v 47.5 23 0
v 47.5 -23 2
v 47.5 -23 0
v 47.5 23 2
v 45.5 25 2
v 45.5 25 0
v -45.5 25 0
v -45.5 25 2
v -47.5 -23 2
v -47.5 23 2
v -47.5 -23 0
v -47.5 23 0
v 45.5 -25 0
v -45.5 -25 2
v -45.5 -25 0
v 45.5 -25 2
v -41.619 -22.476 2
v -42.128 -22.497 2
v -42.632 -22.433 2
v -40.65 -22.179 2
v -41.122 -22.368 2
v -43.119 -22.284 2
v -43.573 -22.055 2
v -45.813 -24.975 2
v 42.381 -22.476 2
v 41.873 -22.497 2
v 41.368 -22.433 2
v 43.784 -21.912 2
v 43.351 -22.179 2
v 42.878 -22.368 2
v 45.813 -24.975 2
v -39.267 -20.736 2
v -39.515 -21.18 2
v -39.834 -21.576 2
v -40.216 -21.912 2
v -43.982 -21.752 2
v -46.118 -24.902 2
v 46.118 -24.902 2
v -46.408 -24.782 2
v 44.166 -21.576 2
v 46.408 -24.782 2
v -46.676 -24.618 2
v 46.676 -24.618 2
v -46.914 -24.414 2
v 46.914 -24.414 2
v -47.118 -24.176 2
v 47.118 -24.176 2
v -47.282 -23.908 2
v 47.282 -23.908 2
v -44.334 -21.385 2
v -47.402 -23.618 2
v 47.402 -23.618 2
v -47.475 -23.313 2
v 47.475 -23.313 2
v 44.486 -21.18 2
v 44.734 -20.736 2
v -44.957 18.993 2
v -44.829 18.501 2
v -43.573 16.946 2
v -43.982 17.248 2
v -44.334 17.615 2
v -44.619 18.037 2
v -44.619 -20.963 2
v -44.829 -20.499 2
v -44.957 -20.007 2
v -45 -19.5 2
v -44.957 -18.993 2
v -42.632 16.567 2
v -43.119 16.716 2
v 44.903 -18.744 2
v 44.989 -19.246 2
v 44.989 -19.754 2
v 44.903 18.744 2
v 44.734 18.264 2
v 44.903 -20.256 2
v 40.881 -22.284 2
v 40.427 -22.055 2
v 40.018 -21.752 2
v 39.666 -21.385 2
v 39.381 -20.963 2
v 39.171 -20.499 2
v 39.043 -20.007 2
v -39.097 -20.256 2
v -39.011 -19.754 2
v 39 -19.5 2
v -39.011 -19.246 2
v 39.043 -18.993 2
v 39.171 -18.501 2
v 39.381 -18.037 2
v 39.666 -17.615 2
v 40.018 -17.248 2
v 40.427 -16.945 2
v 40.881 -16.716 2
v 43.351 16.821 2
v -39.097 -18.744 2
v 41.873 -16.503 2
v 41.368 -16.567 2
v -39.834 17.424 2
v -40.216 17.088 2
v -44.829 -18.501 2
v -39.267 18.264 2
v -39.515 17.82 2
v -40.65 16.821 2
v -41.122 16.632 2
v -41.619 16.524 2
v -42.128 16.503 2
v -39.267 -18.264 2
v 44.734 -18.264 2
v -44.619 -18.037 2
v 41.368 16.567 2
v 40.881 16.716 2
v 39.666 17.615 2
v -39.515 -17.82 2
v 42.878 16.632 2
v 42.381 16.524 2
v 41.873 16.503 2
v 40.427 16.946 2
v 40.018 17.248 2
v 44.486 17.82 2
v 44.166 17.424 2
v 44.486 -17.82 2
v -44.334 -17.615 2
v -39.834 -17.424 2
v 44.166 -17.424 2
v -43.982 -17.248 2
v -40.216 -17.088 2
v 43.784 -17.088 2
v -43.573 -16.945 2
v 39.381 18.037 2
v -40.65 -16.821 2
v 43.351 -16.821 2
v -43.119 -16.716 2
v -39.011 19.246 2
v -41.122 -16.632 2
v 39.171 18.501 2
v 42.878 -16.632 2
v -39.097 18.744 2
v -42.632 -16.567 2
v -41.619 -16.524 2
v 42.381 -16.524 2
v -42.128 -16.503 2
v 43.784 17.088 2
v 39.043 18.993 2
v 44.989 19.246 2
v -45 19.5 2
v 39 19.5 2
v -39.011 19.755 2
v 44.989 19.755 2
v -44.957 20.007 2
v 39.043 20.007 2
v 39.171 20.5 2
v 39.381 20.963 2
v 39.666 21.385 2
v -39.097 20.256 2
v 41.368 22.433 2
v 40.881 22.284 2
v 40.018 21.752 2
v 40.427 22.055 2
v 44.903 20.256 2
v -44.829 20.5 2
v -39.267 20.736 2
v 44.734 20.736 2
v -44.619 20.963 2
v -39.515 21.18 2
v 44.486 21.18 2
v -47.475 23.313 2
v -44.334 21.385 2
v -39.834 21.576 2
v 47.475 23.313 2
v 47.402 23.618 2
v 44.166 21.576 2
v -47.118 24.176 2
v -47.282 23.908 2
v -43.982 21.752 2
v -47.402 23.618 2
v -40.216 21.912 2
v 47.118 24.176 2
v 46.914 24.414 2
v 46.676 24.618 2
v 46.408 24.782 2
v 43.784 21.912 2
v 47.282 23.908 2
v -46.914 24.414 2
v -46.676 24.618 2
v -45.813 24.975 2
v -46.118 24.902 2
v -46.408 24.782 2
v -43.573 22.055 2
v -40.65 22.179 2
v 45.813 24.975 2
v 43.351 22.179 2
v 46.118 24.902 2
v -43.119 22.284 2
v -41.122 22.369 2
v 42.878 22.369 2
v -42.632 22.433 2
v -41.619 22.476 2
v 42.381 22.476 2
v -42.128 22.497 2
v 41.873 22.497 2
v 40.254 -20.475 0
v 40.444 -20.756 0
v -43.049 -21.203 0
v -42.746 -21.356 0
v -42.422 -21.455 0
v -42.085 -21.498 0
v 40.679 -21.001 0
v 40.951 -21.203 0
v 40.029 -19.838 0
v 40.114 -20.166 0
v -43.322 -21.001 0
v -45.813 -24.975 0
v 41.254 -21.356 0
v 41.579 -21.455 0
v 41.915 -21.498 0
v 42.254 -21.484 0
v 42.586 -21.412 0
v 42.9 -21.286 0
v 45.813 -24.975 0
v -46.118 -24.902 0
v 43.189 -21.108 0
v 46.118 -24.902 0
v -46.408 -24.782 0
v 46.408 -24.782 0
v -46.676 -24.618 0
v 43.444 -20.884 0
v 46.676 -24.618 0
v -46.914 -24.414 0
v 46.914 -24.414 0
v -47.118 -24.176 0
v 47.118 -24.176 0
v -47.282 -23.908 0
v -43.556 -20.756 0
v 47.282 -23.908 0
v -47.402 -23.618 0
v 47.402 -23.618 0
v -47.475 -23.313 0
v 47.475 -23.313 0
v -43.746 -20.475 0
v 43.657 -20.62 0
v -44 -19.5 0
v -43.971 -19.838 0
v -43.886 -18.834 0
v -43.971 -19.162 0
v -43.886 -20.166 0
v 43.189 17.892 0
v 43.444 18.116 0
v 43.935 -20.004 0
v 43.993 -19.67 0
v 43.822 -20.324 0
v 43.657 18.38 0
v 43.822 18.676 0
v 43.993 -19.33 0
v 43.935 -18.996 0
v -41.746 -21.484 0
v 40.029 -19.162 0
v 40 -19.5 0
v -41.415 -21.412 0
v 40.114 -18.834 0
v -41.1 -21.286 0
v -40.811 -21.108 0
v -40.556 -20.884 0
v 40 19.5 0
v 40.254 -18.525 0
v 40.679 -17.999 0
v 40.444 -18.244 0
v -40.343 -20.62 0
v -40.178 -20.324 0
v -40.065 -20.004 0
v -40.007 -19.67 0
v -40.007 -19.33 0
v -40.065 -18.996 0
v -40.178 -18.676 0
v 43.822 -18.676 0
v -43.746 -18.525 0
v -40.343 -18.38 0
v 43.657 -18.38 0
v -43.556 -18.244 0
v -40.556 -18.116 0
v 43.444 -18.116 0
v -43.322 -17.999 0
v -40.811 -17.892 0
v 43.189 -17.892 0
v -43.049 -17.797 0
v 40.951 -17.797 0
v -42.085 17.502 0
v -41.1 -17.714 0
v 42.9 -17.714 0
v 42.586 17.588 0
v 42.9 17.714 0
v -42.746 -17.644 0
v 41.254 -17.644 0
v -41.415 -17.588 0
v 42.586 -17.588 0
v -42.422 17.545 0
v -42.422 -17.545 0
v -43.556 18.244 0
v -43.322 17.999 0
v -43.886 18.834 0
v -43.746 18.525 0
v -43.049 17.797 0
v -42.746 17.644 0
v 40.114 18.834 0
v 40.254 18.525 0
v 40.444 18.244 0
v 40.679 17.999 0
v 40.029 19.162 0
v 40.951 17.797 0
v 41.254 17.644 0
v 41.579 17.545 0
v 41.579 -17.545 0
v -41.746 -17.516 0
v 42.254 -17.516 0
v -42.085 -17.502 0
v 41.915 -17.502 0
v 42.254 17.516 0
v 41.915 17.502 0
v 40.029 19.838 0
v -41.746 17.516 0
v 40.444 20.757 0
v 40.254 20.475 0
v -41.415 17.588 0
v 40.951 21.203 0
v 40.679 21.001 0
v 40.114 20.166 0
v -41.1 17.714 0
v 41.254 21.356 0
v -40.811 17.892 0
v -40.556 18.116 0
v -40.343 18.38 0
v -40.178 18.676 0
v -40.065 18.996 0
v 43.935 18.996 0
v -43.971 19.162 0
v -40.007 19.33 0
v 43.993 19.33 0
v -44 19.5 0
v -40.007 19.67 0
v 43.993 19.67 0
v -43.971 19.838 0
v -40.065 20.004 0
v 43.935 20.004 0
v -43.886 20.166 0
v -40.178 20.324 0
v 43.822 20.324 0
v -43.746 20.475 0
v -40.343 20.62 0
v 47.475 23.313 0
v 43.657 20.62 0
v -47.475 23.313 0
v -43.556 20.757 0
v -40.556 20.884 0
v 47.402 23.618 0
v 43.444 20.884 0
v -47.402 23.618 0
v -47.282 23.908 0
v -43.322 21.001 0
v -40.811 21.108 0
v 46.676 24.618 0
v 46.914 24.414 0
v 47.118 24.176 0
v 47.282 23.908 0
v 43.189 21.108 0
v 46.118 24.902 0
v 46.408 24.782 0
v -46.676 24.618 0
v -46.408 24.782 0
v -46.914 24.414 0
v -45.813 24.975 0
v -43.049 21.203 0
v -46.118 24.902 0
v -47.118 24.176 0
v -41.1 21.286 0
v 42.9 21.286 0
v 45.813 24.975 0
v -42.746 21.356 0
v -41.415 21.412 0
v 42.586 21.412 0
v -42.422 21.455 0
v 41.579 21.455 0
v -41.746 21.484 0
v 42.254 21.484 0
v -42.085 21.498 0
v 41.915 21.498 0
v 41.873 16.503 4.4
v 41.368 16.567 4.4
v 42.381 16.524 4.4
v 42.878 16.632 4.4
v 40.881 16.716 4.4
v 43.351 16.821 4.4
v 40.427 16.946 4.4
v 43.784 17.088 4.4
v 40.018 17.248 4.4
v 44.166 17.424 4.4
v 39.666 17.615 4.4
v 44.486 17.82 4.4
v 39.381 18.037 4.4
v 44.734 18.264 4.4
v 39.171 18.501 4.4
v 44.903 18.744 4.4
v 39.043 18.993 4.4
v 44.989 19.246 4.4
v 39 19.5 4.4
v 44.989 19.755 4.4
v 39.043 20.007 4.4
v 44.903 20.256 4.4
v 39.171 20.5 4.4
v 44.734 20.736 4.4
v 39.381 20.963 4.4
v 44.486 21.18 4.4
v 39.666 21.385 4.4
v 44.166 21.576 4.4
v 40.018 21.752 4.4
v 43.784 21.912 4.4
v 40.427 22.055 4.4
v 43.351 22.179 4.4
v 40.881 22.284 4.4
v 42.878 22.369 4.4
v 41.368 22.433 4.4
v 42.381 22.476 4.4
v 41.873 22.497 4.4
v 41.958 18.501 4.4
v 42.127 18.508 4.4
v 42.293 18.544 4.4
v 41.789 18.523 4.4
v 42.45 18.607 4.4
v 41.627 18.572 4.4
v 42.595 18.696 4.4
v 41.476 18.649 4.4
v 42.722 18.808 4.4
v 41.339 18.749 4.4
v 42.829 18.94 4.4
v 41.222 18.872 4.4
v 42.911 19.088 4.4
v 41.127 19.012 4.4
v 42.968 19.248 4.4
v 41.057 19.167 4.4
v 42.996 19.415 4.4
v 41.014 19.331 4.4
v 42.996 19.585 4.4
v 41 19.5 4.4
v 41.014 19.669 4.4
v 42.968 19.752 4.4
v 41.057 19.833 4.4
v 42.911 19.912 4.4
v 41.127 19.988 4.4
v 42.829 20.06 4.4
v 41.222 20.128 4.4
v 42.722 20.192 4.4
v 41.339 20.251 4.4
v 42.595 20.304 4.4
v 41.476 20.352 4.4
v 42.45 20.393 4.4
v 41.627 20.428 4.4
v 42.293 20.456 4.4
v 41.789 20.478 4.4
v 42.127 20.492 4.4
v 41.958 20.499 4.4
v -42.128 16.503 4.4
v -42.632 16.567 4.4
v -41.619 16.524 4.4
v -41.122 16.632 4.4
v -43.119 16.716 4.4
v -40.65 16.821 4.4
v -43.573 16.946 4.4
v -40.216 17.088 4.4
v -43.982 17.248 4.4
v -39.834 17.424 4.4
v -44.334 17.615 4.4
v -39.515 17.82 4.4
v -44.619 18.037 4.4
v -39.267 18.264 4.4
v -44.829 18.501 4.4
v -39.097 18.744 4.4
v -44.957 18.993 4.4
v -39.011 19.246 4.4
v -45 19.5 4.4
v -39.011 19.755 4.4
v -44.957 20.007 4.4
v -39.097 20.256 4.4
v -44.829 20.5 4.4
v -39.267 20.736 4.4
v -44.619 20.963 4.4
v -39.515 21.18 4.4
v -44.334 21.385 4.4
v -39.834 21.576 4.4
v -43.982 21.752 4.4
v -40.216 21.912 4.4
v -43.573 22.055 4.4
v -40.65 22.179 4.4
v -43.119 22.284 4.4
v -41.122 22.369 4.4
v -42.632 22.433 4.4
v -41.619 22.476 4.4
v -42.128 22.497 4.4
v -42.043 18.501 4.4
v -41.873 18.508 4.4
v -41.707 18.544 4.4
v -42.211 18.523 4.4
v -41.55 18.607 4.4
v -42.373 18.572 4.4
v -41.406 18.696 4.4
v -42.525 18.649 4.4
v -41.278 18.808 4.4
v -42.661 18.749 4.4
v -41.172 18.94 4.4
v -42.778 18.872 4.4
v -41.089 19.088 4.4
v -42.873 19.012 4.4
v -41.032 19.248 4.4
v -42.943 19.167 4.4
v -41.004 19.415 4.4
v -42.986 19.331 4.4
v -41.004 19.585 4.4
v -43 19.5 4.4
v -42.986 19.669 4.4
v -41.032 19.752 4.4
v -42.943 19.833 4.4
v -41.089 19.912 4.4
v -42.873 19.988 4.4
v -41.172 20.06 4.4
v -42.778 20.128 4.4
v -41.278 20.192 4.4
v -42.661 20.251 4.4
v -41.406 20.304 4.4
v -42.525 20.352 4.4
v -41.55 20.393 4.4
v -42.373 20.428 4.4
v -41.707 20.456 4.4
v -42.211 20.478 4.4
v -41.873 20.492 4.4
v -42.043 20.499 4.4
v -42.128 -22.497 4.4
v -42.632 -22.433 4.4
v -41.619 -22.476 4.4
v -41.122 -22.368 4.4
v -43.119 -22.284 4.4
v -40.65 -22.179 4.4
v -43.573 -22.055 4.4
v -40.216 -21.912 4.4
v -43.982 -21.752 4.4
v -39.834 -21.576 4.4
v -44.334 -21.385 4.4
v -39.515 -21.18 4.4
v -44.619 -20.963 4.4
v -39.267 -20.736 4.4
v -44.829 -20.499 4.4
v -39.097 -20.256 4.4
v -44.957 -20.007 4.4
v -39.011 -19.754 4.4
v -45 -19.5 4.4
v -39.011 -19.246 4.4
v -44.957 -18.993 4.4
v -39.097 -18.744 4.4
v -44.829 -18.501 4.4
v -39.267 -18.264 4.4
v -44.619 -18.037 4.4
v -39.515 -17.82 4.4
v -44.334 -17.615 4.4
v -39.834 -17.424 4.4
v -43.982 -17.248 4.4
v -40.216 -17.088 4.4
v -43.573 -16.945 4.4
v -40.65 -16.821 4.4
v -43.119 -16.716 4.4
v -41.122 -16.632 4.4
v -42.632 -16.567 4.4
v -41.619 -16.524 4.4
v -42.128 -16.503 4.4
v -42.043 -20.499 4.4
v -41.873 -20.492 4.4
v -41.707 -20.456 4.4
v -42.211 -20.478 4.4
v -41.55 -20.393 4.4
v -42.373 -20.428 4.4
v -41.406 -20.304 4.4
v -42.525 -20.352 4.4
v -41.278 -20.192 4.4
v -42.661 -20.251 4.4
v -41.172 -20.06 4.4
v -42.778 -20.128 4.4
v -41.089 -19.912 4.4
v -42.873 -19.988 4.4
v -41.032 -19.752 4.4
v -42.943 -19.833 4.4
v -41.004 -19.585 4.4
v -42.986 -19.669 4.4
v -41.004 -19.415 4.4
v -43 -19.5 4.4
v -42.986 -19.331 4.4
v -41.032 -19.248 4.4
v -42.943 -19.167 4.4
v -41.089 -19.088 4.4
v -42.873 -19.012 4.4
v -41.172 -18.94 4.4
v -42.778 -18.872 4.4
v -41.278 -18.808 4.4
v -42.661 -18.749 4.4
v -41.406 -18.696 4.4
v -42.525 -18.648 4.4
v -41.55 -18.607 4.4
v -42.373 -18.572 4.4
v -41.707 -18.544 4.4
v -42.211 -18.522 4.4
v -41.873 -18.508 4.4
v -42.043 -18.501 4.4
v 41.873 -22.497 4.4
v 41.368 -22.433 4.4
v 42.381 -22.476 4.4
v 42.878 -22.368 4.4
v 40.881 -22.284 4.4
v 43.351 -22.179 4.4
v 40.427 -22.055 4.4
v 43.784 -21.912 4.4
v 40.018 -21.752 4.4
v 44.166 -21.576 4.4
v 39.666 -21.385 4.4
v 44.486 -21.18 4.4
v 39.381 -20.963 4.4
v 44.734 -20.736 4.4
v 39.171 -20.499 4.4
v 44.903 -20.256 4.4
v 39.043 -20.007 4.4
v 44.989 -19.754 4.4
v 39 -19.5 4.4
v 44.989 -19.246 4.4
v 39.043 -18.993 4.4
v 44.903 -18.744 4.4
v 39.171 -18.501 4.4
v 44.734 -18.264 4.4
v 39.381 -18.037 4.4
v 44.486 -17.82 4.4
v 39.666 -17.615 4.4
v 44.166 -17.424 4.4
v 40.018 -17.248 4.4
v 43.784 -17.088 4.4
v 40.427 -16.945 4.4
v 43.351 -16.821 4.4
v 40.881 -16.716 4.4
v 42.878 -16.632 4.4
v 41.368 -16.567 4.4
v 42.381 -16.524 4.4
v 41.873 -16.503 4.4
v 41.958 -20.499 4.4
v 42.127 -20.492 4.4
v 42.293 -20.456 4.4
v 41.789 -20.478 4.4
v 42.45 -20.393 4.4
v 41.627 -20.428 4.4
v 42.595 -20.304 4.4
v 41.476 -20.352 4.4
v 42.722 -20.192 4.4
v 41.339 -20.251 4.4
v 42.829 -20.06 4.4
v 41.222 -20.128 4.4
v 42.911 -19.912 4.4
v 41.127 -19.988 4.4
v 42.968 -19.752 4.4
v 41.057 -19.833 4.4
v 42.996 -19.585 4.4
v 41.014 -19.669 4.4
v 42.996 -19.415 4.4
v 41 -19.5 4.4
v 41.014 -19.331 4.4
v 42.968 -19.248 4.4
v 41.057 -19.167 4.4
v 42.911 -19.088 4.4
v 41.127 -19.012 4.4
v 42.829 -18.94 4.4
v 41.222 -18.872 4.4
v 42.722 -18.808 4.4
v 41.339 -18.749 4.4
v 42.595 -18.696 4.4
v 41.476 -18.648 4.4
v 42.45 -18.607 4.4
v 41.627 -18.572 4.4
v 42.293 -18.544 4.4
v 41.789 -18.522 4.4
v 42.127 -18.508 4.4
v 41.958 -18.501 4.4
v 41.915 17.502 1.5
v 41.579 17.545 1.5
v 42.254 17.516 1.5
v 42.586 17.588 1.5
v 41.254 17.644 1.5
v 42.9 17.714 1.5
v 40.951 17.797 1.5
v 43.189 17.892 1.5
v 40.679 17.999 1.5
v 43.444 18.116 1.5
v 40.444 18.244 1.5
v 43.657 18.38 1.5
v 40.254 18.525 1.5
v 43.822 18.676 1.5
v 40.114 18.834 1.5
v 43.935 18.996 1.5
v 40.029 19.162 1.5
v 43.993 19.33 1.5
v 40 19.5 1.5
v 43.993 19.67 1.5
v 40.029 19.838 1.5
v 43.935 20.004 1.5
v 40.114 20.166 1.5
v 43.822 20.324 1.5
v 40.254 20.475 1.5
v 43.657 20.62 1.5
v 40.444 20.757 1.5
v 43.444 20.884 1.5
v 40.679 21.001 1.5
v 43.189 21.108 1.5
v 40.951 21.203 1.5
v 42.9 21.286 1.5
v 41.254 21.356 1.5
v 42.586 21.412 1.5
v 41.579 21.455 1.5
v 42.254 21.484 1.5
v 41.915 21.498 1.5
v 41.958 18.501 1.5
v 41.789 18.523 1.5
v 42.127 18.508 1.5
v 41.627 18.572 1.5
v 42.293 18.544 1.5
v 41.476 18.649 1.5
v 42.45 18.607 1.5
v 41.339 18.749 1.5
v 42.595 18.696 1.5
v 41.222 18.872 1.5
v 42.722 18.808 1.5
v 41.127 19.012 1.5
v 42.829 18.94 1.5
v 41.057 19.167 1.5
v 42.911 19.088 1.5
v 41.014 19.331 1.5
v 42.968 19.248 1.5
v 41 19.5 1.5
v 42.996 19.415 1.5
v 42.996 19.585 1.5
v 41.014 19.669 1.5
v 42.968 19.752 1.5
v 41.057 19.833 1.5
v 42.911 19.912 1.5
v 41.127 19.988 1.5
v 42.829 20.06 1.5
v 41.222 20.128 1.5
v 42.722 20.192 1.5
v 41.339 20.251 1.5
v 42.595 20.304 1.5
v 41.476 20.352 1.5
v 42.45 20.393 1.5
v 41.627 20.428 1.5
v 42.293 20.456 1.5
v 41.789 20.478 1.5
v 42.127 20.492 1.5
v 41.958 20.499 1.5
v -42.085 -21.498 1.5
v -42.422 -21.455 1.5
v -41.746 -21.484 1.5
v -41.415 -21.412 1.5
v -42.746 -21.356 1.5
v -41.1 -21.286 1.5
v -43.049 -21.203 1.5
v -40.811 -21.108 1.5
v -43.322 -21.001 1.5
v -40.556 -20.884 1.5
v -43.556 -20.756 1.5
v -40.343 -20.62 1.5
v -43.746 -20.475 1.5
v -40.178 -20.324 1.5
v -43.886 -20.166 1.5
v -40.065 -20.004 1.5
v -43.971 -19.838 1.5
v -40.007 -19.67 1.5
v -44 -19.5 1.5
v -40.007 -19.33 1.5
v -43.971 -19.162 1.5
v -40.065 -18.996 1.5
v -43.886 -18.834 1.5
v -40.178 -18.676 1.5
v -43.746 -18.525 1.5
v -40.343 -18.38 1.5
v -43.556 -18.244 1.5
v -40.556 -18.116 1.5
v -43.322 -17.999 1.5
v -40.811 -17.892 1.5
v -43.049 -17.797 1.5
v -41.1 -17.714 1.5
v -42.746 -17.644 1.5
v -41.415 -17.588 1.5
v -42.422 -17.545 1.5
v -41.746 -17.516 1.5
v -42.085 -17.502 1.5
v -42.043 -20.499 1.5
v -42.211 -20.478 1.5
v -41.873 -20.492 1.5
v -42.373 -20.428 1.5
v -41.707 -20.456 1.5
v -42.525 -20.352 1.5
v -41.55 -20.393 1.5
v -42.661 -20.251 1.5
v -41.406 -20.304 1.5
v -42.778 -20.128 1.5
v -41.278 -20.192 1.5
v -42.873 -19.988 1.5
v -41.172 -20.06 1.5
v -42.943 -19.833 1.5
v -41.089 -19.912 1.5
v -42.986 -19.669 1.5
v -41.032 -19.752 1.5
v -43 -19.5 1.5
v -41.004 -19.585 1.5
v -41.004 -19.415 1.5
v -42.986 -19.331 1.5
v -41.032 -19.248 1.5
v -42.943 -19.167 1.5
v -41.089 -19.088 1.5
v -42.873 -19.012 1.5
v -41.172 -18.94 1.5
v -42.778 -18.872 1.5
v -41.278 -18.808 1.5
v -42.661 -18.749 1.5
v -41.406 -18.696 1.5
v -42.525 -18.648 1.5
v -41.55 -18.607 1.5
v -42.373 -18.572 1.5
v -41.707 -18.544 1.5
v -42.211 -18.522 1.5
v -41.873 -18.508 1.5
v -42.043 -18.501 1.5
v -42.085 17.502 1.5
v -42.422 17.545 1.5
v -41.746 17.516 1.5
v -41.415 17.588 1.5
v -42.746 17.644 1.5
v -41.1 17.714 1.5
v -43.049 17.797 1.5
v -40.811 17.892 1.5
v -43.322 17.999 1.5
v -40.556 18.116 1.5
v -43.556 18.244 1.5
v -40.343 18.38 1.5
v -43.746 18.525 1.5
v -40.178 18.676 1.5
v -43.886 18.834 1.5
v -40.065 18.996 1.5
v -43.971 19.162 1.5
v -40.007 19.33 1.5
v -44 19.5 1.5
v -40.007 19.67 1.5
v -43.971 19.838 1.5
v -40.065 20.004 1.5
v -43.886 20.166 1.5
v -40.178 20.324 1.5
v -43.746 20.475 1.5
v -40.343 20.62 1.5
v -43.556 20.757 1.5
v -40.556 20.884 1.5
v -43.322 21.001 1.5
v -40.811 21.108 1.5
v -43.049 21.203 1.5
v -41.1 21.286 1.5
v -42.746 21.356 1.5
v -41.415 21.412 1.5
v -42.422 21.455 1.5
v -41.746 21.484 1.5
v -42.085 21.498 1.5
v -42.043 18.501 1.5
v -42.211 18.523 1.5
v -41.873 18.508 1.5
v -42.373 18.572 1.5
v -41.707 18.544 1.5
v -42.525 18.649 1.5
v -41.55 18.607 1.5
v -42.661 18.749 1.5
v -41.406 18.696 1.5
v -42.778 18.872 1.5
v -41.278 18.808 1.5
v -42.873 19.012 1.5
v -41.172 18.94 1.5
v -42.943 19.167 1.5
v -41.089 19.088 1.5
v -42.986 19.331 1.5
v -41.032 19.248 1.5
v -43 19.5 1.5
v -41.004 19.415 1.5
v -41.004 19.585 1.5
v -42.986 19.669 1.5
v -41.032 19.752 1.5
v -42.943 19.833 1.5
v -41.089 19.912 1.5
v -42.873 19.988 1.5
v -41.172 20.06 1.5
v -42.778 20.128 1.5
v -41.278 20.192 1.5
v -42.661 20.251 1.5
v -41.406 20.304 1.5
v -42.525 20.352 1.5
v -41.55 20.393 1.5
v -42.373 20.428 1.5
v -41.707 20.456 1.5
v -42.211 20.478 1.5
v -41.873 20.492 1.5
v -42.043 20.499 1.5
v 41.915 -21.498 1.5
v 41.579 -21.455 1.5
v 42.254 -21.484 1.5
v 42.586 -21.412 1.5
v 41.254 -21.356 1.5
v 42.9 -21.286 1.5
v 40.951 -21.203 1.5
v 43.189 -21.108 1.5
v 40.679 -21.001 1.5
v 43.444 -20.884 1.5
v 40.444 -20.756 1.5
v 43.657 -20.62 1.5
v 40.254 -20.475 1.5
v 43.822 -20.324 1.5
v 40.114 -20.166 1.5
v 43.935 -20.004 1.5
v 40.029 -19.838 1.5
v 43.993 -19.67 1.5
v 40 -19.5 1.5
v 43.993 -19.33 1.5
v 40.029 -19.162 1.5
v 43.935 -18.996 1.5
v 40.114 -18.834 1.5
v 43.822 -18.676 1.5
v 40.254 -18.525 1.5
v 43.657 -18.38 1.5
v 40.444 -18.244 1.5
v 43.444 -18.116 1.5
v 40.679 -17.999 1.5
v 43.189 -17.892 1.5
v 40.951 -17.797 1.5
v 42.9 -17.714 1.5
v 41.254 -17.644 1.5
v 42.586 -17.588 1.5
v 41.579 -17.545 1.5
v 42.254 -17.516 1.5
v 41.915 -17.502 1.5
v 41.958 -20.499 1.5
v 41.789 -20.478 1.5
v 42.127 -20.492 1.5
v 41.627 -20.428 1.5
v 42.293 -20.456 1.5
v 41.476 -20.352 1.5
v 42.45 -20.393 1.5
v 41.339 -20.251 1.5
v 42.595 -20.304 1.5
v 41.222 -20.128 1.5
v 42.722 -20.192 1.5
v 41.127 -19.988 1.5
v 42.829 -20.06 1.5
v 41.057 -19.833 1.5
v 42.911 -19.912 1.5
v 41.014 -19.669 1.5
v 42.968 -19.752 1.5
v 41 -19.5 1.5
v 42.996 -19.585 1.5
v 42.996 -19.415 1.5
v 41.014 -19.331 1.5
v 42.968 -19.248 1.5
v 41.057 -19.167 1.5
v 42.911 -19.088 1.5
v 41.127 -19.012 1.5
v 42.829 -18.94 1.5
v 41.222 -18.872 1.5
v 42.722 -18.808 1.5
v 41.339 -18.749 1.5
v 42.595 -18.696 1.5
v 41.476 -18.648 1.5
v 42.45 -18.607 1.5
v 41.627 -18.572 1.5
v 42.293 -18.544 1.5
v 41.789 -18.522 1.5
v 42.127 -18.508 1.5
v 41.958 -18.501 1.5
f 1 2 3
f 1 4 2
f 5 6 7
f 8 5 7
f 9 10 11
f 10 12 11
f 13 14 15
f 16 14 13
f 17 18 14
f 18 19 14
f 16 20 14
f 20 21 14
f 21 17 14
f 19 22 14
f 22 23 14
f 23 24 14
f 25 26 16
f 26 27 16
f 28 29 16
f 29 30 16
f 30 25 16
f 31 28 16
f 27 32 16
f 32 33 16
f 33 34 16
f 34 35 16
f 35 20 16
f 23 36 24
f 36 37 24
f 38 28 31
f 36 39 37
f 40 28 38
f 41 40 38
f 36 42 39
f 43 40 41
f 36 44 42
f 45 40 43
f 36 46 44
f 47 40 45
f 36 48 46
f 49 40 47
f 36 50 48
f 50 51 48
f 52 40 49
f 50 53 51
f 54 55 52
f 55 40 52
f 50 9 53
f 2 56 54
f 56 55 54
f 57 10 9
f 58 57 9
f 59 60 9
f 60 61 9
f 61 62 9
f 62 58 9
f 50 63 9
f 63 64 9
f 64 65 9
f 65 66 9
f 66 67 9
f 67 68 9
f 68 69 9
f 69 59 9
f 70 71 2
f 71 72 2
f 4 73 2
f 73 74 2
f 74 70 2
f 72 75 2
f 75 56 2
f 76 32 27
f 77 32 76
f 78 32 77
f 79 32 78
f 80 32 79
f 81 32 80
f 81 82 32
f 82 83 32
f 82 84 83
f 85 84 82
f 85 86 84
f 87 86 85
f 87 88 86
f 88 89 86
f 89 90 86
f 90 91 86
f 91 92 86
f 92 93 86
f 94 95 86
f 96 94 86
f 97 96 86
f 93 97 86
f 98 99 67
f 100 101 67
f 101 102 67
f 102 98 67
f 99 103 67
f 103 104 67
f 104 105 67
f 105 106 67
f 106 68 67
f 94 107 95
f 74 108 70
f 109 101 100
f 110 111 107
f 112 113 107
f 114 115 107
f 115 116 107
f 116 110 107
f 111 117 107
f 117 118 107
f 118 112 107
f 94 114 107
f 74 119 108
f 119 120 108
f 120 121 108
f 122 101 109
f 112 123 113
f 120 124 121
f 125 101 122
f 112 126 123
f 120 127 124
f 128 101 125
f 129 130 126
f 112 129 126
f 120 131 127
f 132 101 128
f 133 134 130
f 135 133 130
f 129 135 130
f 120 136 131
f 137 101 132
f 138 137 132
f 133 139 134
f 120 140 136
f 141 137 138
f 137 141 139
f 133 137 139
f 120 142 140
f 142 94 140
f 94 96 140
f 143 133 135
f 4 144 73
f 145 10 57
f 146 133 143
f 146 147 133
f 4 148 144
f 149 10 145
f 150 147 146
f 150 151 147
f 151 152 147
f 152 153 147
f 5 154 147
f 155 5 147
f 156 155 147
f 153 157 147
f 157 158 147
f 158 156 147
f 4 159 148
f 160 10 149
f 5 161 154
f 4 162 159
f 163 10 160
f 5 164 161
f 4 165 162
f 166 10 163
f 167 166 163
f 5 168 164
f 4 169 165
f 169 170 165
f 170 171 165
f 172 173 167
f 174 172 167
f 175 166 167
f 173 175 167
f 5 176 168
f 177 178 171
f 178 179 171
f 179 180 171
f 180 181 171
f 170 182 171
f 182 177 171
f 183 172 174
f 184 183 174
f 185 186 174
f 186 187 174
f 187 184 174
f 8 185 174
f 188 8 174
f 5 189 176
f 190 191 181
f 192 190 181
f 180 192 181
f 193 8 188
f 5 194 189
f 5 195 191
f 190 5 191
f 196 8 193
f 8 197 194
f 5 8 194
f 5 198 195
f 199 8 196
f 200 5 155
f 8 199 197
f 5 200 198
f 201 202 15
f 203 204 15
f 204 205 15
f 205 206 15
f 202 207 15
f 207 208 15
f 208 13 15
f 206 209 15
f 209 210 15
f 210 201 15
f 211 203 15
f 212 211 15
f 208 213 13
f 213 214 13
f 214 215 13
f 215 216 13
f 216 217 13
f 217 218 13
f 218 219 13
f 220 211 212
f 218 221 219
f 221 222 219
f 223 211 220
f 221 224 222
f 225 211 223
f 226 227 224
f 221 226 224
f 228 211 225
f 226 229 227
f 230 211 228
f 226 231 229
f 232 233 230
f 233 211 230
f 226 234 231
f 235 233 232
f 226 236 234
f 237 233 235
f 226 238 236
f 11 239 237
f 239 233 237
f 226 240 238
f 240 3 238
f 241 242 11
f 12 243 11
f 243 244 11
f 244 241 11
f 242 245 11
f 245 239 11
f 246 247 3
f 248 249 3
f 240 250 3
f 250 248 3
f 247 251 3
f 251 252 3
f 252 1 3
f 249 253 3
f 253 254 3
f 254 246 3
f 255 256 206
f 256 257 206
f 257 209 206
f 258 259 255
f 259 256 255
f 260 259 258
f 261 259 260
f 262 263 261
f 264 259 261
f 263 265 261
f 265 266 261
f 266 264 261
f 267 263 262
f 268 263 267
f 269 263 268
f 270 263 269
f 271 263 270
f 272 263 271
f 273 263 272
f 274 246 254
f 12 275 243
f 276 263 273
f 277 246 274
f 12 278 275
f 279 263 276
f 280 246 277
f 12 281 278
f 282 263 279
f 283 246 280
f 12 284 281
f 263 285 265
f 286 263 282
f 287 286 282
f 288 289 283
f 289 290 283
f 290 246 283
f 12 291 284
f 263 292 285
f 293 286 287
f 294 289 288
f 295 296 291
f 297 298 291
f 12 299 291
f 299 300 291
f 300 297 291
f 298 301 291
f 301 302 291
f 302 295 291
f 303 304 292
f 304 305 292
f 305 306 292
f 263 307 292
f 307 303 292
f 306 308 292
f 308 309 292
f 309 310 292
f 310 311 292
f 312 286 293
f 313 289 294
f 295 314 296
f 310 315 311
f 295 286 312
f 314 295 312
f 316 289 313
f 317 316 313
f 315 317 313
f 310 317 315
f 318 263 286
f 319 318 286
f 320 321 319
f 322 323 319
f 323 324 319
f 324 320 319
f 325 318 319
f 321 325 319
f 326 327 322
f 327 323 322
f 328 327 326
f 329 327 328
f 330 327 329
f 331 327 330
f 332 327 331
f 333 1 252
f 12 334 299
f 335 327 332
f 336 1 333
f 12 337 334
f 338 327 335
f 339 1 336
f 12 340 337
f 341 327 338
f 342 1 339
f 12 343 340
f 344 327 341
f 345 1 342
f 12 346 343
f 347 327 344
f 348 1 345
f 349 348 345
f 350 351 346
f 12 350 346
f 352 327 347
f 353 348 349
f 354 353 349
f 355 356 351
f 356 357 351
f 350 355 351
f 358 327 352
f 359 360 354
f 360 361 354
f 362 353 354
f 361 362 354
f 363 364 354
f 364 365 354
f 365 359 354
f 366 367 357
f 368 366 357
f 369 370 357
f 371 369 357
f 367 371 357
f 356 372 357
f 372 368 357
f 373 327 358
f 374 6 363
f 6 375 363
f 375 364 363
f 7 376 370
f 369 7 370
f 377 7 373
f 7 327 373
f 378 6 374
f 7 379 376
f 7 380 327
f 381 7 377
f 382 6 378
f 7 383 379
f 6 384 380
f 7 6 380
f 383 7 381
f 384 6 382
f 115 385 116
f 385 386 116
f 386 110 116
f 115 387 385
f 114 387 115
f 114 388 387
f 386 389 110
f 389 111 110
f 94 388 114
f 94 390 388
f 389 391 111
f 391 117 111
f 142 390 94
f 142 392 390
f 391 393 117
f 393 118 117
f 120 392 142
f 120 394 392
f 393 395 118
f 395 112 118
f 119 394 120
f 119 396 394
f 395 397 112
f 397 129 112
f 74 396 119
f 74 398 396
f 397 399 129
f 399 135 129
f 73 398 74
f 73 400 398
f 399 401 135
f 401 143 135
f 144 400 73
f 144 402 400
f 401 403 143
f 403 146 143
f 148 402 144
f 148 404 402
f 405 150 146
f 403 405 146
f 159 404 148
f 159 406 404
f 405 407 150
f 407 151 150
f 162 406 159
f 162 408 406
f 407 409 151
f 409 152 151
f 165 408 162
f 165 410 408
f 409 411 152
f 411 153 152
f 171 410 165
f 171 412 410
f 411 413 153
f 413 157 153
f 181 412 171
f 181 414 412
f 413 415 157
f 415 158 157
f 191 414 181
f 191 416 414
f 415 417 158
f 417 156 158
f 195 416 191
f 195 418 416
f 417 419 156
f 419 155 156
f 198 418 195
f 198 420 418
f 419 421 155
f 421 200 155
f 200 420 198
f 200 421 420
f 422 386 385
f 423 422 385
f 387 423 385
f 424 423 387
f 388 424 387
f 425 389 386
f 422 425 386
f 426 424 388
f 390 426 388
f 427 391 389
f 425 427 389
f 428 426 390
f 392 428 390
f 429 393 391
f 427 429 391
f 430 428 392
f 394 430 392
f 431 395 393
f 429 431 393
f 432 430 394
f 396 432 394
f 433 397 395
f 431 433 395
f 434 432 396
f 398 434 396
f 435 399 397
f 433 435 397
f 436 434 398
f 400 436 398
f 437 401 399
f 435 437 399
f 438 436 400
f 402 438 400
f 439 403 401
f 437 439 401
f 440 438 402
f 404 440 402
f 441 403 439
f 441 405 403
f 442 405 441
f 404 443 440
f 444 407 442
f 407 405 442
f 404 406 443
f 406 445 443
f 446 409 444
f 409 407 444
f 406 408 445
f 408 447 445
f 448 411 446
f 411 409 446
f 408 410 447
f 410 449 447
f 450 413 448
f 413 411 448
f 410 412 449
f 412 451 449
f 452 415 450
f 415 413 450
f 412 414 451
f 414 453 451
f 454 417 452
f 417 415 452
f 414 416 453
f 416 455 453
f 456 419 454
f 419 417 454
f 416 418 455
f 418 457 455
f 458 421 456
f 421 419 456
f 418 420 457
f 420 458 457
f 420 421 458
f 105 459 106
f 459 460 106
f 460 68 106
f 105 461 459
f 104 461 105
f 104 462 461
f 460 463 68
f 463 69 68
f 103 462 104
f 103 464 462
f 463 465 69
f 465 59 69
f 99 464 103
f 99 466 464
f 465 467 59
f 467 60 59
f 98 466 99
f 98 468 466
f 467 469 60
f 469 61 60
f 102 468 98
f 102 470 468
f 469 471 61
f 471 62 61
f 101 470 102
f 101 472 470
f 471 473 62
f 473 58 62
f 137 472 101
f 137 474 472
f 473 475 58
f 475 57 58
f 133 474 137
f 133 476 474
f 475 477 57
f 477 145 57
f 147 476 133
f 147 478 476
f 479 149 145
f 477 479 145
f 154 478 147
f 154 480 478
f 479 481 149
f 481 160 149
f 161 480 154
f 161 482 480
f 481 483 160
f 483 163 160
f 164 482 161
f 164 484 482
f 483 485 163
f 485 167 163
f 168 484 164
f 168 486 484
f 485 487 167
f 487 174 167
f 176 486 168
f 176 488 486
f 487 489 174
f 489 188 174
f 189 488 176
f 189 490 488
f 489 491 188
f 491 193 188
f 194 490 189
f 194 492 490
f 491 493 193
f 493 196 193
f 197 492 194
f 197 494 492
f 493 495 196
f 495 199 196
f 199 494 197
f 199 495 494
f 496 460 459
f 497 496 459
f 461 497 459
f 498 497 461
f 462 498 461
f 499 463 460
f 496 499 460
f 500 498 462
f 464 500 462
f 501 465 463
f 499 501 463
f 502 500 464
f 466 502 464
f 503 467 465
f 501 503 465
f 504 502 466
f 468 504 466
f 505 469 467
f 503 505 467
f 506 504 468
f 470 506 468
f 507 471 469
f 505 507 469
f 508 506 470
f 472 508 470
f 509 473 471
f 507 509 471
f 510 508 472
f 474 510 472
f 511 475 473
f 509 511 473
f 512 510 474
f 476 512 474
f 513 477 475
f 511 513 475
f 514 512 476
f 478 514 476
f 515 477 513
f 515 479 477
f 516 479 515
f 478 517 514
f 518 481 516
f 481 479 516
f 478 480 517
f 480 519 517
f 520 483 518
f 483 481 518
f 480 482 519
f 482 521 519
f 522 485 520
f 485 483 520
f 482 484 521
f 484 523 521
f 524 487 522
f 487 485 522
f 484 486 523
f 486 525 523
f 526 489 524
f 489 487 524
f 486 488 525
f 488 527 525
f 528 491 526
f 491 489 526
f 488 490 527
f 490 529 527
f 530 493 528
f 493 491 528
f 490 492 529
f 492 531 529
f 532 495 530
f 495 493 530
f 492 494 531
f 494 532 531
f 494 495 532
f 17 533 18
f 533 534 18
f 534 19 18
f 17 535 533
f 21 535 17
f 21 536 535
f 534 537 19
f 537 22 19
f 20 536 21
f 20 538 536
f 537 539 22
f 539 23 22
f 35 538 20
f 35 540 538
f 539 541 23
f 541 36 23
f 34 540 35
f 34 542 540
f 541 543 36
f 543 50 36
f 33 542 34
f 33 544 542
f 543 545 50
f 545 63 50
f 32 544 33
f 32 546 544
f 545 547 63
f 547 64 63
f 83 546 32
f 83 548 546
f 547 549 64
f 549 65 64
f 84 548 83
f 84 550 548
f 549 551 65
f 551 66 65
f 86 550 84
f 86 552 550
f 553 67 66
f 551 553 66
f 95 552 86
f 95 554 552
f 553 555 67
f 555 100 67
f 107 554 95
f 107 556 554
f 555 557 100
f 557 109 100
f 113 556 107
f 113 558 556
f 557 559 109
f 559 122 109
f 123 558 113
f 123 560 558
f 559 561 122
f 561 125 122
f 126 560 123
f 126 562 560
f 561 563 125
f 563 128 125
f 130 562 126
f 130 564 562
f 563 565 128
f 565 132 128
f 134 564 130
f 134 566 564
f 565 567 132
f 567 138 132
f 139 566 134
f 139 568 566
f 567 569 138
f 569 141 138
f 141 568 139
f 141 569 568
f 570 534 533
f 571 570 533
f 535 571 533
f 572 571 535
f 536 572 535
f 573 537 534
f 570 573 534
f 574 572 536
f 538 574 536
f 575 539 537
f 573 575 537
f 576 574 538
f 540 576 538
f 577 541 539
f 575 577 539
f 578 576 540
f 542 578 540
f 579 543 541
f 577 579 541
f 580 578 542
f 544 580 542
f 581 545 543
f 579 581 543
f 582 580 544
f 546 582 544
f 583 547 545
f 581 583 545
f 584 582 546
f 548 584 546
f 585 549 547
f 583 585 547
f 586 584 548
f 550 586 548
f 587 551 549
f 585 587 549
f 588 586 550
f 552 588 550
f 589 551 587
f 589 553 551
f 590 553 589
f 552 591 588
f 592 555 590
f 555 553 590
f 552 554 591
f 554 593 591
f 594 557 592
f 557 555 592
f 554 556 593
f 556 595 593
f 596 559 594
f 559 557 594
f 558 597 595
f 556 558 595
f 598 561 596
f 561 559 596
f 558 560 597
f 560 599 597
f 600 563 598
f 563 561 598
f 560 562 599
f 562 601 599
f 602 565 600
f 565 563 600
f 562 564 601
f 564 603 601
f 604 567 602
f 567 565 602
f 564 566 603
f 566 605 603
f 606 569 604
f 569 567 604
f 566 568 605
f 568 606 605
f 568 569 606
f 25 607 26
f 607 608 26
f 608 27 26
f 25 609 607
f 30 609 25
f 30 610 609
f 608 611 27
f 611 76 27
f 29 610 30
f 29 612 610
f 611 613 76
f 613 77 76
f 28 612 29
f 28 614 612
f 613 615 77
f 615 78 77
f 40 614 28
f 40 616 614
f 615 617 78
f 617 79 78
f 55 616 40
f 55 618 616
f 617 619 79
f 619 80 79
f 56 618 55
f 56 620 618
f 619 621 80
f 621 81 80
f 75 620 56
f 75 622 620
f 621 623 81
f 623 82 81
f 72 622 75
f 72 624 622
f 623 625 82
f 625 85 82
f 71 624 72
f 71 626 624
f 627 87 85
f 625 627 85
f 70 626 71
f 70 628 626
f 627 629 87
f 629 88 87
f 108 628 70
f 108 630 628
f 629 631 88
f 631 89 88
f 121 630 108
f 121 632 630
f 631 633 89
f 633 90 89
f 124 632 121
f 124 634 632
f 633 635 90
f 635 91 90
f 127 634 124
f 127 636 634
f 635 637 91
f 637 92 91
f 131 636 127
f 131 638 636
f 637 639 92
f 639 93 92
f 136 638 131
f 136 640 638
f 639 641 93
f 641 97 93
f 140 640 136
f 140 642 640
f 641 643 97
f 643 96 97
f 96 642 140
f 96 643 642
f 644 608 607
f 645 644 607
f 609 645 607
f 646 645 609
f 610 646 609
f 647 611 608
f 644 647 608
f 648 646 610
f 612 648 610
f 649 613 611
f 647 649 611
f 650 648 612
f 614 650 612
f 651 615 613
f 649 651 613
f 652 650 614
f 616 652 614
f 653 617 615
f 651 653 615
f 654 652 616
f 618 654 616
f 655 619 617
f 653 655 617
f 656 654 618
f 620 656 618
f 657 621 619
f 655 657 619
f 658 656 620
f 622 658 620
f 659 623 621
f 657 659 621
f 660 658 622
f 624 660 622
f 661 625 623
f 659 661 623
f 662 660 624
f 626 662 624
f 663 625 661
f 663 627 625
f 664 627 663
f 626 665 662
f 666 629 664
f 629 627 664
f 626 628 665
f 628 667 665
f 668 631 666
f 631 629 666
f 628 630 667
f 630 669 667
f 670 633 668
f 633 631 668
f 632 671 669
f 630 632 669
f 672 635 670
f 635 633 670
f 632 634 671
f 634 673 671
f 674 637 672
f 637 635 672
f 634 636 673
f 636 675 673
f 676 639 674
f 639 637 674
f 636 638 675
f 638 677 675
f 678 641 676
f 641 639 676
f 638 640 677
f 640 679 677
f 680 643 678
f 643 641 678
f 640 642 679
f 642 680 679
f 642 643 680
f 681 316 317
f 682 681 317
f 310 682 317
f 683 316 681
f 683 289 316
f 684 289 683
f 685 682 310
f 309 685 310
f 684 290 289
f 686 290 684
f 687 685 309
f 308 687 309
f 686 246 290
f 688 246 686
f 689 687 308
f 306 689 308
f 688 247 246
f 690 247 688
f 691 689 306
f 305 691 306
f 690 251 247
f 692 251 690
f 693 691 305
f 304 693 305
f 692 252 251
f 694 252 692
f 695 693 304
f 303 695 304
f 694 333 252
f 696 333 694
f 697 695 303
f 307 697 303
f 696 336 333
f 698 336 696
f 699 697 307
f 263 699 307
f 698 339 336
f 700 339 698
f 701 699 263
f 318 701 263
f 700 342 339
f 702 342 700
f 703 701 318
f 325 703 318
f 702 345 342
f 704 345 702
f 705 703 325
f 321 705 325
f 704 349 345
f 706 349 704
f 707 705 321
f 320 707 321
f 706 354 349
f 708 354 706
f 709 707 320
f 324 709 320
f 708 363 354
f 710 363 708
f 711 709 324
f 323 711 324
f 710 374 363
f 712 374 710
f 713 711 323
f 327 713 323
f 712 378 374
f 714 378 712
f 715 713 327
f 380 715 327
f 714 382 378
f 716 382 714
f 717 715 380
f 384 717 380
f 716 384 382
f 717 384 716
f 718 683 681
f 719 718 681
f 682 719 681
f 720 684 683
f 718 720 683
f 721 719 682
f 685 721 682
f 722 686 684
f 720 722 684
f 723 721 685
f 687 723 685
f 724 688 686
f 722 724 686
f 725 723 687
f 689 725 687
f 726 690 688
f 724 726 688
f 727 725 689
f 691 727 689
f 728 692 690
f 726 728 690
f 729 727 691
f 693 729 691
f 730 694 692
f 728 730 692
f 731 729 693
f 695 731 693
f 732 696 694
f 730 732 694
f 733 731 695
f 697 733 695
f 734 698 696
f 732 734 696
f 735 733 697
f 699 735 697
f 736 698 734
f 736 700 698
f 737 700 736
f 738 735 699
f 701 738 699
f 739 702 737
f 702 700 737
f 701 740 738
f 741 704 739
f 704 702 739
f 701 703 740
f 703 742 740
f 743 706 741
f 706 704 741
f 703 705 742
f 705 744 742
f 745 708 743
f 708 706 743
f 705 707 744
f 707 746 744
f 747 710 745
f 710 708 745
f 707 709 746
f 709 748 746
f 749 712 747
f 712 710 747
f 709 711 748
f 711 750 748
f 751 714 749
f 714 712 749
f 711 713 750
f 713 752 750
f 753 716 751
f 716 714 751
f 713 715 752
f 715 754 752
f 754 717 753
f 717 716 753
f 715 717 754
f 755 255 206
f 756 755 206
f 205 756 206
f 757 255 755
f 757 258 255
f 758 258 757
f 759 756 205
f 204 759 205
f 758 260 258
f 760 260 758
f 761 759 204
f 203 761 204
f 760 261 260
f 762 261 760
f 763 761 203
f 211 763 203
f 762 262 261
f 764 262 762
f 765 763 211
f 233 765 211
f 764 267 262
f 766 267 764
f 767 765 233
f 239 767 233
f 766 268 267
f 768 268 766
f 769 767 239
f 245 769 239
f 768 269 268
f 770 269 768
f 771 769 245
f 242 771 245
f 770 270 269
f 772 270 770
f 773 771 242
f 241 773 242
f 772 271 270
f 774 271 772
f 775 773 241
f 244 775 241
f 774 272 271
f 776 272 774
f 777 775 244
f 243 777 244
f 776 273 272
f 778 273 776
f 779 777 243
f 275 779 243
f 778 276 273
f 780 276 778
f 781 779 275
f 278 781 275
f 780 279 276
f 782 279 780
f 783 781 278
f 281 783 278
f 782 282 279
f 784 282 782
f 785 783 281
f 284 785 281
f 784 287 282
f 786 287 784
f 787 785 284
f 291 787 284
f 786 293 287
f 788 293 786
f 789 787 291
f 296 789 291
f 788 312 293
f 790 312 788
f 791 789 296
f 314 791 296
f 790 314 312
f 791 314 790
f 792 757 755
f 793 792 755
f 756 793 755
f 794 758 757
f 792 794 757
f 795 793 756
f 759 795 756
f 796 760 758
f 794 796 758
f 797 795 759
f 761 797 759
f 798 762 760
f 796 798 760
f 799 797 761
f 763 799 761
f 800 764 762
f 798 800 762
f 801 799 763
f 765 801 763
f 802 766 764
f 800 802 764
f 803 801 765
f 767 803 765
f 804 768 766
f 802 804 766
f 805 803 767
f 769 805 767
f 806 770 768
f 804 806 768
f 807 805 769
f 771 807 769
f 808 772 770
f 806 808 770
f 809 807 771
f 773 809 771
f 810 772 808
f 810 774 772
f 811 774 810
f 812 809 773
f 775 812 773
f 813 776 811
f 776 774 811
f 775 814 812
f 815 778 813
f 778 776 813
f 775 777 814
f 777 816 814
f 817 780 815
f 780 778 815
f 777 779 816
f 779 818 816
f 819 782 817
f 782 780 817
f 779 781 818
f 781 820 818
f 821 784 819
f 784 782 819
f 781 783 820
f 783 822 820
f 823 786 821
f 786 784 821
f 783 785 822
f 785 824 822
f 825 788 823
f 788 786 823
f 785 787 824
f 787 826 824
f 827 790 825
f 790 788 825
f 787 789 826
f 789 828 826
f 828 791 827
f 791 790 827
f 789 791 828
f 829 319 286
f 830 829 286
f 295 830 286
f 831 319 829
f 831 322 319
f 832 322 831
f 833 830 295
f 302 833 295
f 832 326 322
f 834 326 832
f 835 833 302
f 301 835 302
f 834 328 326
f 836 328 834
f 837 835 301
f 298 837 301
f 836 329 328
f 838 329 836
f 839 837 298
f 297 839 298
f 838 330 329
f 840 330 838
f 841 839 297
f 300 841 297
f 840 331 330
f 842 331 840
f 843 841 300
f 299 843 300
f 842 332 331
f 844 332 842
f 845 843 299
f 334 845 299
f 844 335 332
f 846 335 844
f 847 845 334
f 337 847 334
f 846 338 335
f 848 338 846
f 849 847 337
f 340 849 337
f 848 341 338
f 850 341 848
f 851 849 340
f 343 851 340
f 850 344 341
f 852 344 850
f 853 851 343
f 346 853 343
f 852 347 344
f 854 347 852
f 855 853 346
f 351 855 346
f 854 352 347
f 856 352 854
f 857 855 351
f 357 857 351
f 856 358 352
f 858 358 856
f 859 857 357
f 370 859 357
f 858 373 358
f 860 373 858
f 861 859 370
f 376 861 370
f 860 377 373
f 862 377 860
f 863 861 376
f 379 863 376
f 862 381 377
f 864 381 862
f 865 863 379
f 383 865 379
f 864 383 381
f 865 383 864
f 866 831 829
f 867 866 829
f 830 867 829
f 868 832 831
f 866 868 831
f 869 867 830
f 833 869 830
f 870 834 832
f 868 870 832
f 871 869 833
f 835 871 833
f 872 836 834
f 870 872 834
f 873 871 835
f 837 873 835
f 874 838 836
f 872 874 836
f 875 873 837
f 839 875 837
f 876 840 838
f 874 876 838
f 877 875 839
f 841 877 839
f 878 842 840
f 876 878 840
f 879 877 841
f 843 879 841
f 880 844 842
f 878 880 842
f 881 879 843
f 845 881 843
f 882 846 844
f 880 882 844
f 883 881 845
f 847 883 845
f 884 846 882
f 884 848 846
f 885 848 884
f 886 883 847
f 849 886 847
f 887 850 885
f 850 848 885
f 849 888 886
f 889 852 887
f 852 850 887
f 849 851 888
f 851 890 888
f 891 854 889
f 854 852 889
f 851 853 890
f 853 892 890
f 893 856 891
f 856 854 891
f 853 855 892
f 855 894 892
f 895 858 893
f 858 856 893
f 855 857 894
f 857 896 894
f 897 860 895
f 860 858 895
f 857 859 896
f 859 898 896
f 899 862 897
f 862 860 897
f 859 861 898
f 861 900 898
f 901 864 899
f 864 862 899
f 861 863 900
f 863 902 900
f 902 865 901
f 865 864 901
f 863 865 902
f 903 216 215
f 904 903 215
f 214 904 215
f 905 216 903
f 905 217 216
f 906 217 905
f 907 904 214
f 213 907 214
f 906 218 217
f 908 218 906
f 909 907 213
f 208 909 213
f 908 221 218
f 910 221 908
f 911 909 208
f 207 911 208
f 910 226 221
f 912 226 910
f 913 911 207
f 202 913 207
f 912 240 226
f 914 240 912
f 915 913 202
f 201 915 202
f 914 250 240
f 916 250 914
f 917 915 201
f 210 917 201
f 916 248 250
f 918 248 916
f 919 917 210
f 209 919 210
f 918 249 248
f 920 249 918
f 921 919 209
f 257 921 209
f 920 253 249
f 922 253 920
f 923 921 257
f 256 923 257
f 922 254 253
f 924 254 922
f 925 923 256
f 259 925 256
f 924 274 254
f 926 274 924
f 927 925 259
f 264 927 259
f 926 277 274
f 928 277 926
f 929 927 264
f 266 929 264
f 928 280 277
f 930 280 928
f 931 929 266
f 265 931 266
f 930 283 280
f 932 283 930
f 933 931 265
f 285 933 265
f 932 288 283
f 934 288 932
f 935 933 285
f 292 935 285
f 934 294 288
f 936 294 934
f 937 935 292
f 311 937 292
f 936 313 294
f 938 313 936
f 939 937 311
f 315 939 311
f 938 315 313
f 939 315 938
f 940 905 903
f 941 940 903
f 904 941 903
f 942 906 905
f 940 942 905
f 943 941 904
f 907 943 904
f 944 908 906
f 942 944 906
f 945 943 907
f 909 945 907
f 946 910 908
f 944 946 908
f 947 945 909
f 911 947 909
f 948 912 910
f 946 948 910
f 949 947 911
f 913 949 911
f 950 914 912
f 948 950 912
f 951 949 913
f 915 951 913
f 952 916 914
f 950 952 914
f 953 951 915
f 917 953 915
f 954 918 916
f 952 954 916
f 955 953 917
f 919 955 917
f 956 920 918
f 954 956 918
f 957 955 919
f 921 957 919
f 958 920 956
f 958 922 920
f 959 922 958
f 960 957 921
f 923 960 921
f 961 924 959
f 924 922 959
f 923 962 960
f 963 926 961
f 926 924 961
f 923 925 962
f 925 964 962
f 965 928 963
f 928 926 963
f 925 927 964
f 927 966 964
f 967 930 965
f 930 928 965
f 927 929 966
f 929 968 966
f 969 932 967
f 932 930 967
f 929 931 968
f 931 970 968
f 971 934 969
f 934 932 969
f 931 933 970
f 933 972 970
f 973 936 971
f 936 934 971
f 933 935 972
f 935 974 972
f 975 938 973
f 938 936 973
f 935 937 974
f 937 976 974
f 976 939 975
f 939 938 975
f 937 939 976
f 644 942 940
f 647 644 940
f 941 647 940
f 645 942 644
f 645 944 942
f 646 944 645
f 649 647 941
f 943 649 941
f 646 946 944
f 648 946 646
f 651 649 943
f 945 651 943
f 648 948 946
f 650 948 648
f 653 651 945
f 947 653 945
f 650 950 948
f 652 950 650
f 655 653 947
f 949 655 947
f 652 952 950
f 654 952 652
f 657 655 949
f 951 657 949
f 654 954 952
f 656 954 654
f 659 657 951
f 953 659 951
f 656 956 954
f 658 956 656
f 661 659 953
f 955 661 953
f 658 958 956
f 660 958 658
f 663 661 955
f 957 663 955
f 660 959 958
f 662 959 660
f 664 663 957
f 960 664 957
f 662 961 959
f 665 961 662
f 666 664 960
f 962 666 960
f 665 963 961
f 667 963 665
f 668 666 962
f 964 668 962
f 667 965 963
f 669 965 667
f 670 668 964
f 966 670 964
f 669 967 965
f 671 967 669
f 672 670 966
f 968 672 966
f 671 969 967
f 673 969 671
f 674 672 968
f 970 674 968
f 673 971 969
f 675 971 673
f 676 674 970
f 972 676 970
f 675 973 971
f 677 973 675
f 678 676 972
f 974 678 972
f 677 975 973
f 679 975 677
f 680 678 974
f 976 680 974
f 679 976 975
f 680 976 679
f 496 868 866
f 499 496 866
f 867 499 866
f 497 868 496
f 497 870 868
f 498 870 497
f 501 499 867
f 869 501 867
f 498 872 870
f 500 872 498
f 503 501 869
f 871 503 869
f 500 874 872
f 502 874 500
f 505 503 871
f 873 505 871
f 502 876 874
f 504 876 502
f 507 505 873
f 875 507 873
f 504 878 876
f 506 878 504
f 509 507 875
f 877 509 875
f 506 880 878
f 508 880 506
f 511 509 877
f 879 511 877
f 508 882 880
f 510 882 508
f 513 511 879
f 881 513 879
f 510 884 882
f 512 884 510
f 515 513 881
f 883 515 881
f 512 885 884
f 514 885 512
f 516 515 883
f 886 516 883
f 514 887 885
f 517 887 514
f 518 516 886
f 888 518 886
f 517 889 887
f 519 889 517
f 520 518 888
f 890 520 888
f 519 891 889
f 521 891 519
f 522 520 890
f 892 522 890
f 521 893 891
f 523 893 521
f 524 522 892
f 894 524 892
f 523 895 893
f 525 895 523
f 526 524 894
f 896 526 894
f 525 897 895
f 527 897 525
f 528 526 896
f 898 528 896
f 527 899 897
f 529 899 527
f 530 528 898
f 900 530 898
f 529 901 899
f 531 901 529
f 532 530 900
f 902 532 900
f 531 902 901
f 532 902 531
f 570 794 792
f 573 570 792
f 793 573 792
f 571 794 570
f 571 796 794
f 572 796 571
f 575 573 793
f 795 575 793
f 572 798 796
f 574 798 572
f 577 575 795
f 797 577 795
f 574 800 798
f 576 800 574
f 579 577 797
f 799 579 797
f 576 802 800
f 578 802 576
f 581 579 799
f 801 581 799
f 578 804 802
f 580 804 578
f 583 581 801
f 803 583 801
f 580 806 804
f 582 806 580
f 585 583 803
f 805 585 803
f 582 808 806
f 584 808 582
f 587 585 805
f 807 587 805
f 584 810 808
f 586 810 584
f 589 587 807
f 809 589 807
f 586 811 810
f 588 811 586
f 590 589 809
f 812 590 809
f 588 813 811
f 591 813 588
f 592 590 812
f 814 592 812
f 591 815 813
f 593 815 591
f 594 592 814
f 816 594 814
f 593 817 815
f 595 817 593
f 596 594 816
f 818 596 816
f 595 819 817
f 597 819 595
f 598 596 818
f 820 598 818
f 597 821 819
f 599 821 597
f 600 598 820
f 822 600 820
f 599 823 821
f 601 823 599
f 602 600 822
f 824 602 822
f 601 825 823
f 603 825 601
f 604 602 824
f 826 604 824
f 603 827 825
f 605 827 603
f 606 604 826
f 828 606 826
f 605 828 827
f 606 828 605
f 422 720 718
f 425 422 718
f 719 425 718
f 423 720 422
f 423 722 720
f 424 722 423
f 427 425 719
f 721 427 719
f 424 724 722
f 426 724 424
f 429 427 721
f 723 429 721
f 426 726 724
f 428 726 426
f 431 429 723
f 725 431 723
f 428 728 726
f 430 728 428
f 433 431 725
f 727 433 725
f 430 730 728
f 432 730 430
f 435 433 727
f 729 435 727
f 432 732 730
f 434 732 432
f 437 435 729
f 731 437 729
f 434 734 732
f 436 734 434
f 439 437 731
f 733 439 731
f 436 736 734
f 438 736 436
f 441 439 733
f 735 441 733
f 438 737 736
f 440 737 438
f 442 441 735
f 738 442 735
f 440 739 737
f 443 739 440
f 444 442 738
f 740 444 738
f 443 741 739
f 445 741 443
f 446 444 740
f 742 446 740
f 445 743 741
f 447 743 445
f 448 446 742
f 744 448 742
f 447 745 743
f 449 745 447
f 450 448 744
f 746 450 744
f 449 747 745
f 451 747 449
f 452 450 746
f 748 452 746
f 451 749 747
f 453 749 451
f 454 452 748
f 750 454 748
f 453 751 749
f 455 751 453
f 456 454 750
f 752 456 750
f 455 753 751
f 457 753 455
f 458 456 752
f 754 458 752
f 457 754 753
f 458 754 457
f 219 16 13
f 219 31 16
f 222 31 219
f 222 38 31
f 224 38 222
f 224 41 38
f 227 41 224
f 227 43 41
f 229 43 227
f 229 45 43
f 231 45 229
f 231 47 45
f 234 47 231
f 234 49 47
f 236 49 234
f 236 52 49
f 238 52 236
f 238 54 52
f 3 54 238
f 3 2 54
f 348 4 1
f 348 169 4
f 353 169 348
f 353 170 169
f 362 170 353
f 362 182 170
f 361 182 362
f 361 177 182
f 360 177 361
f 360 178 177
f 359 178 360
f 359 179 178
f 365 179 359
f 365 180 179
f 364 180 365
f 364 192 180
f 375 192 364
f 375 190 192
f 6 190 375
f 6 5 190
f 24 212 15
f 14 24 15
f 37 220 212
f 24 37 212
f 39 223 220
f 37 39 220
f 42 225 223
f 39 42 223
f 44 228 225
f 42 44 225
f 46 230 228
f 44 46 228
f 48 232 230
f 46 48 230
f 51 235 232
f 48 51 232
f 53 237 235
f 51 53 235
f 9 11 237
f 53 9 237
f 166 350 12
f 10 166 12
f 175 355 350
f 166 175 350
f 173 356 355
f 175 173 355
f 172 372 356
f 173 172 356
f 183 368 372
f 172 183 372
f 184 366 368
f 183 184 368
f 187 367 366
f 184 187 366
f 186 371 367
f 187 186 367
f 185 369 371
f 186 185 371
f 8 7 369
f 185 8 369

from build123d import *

# Parameters (mm, degrees)
SKETCH_1_W          = 95
SKETCH_1_H          = 50
EXTRUDE_1_DEPTH     = 2
EXTRUDE_START       = -2
SKETCH_3_R          = 3
EXTRUDE_3_DEPTH     = 2.4
SKETCH_4_R          = 2
CUT_EXTRUDE_1_DEPTH = 1.5
SKETCH_5_R          = 1
CUT_EXTRUDE_2_DEPTH = 54.857311481
FILLET_2_R          = 2


with BuildPart() as part:
    # 草图1 → 凸台-拉伸1 (new body)
    with BuildSketch(Plane.XY):
        Rectangle(SKETCH_1_W, SKETCH_1_H)
    extrude(amount=EXTRUDE_1_DEPTH)

    # 草图3 → 凸台-拉伸3 (add)
    with BuildSketch(Plane(origin=(0, 0, 0), x_dir=(-1, 0, 0), z_dir=(0, 0, -1)).offset(EXTRUDE_START)):
        with Locations((-42, 19.50009906)):
            Circle(SKETCH_3_R)
        with Locations((42.00021336, 19.50009906)):
            Circle(SKETCH_3_R)
        with Locations((42.00021336, -19.5)):
            Circle(SKETCH_3_R)
        with Locations((-42, -19.5)):
            Circle(SKETCH_3_R)
    extrude(amount=-EXTRUDE_3_DEPTH)

    # 草图4 → 切除-拉伸1 (cut)
    with BuildSketch(Plane(origin=(0, 0, 0), x_dir=(-1, 0, 0), z_dir=(0, 0, -1))):
        with Locations((-42, 19.50009906)):
            Circle(SKETCH_4_R)
        with Locations((-42, -19.5)):
            Circle(SKETCH_4_R)
        with Locations((42.00021336, 19.50009906)):
            Circle(SKETCH_4_R)
        with Locations((42.00021336, -19.5)):
            Circle(SKETCH_4_R)
    extrude(amount=-CUT_EXTRUDE_1_DEPTH, mode=Mode.SUBTRACT)

    # 草图5 → 切除-拉伸2 (cut, through all)
    with BuildSketch(Plane(origin=(0, 0, 0), x_dir=(-1, 0, 0), z_dir=(0, 0, -1))):
        with Locations((-42, 19.50009906)):
            Circle(SKETCH_5_R)
        with Locations((42.00021336, 19.50009906)):
            Circle(SKETCH_5_R)
        with Locations((42.00021336, -19.5)):
            Circle(SKETCH_5_R)
        with Locations((-42, -19.5)):
            Circle(SKETCH_5_R)
    extrude(amount=-CUT_EXTRUDE_2_DEPTH, mode=Mode.SUBTRACT)

    # 圆角2
    fillet_2_edges = [part.edges().sort_by_distance(p)[0] for p in [
        (47.5, -25, 1),
        (-47.5, -25, 1),
        (-47.5, 25, 1),
        (47.5, 25, 1),
    ]]
    fillet(fillet_2_edges, radius=FILLET_2_R)


solid = part.part
